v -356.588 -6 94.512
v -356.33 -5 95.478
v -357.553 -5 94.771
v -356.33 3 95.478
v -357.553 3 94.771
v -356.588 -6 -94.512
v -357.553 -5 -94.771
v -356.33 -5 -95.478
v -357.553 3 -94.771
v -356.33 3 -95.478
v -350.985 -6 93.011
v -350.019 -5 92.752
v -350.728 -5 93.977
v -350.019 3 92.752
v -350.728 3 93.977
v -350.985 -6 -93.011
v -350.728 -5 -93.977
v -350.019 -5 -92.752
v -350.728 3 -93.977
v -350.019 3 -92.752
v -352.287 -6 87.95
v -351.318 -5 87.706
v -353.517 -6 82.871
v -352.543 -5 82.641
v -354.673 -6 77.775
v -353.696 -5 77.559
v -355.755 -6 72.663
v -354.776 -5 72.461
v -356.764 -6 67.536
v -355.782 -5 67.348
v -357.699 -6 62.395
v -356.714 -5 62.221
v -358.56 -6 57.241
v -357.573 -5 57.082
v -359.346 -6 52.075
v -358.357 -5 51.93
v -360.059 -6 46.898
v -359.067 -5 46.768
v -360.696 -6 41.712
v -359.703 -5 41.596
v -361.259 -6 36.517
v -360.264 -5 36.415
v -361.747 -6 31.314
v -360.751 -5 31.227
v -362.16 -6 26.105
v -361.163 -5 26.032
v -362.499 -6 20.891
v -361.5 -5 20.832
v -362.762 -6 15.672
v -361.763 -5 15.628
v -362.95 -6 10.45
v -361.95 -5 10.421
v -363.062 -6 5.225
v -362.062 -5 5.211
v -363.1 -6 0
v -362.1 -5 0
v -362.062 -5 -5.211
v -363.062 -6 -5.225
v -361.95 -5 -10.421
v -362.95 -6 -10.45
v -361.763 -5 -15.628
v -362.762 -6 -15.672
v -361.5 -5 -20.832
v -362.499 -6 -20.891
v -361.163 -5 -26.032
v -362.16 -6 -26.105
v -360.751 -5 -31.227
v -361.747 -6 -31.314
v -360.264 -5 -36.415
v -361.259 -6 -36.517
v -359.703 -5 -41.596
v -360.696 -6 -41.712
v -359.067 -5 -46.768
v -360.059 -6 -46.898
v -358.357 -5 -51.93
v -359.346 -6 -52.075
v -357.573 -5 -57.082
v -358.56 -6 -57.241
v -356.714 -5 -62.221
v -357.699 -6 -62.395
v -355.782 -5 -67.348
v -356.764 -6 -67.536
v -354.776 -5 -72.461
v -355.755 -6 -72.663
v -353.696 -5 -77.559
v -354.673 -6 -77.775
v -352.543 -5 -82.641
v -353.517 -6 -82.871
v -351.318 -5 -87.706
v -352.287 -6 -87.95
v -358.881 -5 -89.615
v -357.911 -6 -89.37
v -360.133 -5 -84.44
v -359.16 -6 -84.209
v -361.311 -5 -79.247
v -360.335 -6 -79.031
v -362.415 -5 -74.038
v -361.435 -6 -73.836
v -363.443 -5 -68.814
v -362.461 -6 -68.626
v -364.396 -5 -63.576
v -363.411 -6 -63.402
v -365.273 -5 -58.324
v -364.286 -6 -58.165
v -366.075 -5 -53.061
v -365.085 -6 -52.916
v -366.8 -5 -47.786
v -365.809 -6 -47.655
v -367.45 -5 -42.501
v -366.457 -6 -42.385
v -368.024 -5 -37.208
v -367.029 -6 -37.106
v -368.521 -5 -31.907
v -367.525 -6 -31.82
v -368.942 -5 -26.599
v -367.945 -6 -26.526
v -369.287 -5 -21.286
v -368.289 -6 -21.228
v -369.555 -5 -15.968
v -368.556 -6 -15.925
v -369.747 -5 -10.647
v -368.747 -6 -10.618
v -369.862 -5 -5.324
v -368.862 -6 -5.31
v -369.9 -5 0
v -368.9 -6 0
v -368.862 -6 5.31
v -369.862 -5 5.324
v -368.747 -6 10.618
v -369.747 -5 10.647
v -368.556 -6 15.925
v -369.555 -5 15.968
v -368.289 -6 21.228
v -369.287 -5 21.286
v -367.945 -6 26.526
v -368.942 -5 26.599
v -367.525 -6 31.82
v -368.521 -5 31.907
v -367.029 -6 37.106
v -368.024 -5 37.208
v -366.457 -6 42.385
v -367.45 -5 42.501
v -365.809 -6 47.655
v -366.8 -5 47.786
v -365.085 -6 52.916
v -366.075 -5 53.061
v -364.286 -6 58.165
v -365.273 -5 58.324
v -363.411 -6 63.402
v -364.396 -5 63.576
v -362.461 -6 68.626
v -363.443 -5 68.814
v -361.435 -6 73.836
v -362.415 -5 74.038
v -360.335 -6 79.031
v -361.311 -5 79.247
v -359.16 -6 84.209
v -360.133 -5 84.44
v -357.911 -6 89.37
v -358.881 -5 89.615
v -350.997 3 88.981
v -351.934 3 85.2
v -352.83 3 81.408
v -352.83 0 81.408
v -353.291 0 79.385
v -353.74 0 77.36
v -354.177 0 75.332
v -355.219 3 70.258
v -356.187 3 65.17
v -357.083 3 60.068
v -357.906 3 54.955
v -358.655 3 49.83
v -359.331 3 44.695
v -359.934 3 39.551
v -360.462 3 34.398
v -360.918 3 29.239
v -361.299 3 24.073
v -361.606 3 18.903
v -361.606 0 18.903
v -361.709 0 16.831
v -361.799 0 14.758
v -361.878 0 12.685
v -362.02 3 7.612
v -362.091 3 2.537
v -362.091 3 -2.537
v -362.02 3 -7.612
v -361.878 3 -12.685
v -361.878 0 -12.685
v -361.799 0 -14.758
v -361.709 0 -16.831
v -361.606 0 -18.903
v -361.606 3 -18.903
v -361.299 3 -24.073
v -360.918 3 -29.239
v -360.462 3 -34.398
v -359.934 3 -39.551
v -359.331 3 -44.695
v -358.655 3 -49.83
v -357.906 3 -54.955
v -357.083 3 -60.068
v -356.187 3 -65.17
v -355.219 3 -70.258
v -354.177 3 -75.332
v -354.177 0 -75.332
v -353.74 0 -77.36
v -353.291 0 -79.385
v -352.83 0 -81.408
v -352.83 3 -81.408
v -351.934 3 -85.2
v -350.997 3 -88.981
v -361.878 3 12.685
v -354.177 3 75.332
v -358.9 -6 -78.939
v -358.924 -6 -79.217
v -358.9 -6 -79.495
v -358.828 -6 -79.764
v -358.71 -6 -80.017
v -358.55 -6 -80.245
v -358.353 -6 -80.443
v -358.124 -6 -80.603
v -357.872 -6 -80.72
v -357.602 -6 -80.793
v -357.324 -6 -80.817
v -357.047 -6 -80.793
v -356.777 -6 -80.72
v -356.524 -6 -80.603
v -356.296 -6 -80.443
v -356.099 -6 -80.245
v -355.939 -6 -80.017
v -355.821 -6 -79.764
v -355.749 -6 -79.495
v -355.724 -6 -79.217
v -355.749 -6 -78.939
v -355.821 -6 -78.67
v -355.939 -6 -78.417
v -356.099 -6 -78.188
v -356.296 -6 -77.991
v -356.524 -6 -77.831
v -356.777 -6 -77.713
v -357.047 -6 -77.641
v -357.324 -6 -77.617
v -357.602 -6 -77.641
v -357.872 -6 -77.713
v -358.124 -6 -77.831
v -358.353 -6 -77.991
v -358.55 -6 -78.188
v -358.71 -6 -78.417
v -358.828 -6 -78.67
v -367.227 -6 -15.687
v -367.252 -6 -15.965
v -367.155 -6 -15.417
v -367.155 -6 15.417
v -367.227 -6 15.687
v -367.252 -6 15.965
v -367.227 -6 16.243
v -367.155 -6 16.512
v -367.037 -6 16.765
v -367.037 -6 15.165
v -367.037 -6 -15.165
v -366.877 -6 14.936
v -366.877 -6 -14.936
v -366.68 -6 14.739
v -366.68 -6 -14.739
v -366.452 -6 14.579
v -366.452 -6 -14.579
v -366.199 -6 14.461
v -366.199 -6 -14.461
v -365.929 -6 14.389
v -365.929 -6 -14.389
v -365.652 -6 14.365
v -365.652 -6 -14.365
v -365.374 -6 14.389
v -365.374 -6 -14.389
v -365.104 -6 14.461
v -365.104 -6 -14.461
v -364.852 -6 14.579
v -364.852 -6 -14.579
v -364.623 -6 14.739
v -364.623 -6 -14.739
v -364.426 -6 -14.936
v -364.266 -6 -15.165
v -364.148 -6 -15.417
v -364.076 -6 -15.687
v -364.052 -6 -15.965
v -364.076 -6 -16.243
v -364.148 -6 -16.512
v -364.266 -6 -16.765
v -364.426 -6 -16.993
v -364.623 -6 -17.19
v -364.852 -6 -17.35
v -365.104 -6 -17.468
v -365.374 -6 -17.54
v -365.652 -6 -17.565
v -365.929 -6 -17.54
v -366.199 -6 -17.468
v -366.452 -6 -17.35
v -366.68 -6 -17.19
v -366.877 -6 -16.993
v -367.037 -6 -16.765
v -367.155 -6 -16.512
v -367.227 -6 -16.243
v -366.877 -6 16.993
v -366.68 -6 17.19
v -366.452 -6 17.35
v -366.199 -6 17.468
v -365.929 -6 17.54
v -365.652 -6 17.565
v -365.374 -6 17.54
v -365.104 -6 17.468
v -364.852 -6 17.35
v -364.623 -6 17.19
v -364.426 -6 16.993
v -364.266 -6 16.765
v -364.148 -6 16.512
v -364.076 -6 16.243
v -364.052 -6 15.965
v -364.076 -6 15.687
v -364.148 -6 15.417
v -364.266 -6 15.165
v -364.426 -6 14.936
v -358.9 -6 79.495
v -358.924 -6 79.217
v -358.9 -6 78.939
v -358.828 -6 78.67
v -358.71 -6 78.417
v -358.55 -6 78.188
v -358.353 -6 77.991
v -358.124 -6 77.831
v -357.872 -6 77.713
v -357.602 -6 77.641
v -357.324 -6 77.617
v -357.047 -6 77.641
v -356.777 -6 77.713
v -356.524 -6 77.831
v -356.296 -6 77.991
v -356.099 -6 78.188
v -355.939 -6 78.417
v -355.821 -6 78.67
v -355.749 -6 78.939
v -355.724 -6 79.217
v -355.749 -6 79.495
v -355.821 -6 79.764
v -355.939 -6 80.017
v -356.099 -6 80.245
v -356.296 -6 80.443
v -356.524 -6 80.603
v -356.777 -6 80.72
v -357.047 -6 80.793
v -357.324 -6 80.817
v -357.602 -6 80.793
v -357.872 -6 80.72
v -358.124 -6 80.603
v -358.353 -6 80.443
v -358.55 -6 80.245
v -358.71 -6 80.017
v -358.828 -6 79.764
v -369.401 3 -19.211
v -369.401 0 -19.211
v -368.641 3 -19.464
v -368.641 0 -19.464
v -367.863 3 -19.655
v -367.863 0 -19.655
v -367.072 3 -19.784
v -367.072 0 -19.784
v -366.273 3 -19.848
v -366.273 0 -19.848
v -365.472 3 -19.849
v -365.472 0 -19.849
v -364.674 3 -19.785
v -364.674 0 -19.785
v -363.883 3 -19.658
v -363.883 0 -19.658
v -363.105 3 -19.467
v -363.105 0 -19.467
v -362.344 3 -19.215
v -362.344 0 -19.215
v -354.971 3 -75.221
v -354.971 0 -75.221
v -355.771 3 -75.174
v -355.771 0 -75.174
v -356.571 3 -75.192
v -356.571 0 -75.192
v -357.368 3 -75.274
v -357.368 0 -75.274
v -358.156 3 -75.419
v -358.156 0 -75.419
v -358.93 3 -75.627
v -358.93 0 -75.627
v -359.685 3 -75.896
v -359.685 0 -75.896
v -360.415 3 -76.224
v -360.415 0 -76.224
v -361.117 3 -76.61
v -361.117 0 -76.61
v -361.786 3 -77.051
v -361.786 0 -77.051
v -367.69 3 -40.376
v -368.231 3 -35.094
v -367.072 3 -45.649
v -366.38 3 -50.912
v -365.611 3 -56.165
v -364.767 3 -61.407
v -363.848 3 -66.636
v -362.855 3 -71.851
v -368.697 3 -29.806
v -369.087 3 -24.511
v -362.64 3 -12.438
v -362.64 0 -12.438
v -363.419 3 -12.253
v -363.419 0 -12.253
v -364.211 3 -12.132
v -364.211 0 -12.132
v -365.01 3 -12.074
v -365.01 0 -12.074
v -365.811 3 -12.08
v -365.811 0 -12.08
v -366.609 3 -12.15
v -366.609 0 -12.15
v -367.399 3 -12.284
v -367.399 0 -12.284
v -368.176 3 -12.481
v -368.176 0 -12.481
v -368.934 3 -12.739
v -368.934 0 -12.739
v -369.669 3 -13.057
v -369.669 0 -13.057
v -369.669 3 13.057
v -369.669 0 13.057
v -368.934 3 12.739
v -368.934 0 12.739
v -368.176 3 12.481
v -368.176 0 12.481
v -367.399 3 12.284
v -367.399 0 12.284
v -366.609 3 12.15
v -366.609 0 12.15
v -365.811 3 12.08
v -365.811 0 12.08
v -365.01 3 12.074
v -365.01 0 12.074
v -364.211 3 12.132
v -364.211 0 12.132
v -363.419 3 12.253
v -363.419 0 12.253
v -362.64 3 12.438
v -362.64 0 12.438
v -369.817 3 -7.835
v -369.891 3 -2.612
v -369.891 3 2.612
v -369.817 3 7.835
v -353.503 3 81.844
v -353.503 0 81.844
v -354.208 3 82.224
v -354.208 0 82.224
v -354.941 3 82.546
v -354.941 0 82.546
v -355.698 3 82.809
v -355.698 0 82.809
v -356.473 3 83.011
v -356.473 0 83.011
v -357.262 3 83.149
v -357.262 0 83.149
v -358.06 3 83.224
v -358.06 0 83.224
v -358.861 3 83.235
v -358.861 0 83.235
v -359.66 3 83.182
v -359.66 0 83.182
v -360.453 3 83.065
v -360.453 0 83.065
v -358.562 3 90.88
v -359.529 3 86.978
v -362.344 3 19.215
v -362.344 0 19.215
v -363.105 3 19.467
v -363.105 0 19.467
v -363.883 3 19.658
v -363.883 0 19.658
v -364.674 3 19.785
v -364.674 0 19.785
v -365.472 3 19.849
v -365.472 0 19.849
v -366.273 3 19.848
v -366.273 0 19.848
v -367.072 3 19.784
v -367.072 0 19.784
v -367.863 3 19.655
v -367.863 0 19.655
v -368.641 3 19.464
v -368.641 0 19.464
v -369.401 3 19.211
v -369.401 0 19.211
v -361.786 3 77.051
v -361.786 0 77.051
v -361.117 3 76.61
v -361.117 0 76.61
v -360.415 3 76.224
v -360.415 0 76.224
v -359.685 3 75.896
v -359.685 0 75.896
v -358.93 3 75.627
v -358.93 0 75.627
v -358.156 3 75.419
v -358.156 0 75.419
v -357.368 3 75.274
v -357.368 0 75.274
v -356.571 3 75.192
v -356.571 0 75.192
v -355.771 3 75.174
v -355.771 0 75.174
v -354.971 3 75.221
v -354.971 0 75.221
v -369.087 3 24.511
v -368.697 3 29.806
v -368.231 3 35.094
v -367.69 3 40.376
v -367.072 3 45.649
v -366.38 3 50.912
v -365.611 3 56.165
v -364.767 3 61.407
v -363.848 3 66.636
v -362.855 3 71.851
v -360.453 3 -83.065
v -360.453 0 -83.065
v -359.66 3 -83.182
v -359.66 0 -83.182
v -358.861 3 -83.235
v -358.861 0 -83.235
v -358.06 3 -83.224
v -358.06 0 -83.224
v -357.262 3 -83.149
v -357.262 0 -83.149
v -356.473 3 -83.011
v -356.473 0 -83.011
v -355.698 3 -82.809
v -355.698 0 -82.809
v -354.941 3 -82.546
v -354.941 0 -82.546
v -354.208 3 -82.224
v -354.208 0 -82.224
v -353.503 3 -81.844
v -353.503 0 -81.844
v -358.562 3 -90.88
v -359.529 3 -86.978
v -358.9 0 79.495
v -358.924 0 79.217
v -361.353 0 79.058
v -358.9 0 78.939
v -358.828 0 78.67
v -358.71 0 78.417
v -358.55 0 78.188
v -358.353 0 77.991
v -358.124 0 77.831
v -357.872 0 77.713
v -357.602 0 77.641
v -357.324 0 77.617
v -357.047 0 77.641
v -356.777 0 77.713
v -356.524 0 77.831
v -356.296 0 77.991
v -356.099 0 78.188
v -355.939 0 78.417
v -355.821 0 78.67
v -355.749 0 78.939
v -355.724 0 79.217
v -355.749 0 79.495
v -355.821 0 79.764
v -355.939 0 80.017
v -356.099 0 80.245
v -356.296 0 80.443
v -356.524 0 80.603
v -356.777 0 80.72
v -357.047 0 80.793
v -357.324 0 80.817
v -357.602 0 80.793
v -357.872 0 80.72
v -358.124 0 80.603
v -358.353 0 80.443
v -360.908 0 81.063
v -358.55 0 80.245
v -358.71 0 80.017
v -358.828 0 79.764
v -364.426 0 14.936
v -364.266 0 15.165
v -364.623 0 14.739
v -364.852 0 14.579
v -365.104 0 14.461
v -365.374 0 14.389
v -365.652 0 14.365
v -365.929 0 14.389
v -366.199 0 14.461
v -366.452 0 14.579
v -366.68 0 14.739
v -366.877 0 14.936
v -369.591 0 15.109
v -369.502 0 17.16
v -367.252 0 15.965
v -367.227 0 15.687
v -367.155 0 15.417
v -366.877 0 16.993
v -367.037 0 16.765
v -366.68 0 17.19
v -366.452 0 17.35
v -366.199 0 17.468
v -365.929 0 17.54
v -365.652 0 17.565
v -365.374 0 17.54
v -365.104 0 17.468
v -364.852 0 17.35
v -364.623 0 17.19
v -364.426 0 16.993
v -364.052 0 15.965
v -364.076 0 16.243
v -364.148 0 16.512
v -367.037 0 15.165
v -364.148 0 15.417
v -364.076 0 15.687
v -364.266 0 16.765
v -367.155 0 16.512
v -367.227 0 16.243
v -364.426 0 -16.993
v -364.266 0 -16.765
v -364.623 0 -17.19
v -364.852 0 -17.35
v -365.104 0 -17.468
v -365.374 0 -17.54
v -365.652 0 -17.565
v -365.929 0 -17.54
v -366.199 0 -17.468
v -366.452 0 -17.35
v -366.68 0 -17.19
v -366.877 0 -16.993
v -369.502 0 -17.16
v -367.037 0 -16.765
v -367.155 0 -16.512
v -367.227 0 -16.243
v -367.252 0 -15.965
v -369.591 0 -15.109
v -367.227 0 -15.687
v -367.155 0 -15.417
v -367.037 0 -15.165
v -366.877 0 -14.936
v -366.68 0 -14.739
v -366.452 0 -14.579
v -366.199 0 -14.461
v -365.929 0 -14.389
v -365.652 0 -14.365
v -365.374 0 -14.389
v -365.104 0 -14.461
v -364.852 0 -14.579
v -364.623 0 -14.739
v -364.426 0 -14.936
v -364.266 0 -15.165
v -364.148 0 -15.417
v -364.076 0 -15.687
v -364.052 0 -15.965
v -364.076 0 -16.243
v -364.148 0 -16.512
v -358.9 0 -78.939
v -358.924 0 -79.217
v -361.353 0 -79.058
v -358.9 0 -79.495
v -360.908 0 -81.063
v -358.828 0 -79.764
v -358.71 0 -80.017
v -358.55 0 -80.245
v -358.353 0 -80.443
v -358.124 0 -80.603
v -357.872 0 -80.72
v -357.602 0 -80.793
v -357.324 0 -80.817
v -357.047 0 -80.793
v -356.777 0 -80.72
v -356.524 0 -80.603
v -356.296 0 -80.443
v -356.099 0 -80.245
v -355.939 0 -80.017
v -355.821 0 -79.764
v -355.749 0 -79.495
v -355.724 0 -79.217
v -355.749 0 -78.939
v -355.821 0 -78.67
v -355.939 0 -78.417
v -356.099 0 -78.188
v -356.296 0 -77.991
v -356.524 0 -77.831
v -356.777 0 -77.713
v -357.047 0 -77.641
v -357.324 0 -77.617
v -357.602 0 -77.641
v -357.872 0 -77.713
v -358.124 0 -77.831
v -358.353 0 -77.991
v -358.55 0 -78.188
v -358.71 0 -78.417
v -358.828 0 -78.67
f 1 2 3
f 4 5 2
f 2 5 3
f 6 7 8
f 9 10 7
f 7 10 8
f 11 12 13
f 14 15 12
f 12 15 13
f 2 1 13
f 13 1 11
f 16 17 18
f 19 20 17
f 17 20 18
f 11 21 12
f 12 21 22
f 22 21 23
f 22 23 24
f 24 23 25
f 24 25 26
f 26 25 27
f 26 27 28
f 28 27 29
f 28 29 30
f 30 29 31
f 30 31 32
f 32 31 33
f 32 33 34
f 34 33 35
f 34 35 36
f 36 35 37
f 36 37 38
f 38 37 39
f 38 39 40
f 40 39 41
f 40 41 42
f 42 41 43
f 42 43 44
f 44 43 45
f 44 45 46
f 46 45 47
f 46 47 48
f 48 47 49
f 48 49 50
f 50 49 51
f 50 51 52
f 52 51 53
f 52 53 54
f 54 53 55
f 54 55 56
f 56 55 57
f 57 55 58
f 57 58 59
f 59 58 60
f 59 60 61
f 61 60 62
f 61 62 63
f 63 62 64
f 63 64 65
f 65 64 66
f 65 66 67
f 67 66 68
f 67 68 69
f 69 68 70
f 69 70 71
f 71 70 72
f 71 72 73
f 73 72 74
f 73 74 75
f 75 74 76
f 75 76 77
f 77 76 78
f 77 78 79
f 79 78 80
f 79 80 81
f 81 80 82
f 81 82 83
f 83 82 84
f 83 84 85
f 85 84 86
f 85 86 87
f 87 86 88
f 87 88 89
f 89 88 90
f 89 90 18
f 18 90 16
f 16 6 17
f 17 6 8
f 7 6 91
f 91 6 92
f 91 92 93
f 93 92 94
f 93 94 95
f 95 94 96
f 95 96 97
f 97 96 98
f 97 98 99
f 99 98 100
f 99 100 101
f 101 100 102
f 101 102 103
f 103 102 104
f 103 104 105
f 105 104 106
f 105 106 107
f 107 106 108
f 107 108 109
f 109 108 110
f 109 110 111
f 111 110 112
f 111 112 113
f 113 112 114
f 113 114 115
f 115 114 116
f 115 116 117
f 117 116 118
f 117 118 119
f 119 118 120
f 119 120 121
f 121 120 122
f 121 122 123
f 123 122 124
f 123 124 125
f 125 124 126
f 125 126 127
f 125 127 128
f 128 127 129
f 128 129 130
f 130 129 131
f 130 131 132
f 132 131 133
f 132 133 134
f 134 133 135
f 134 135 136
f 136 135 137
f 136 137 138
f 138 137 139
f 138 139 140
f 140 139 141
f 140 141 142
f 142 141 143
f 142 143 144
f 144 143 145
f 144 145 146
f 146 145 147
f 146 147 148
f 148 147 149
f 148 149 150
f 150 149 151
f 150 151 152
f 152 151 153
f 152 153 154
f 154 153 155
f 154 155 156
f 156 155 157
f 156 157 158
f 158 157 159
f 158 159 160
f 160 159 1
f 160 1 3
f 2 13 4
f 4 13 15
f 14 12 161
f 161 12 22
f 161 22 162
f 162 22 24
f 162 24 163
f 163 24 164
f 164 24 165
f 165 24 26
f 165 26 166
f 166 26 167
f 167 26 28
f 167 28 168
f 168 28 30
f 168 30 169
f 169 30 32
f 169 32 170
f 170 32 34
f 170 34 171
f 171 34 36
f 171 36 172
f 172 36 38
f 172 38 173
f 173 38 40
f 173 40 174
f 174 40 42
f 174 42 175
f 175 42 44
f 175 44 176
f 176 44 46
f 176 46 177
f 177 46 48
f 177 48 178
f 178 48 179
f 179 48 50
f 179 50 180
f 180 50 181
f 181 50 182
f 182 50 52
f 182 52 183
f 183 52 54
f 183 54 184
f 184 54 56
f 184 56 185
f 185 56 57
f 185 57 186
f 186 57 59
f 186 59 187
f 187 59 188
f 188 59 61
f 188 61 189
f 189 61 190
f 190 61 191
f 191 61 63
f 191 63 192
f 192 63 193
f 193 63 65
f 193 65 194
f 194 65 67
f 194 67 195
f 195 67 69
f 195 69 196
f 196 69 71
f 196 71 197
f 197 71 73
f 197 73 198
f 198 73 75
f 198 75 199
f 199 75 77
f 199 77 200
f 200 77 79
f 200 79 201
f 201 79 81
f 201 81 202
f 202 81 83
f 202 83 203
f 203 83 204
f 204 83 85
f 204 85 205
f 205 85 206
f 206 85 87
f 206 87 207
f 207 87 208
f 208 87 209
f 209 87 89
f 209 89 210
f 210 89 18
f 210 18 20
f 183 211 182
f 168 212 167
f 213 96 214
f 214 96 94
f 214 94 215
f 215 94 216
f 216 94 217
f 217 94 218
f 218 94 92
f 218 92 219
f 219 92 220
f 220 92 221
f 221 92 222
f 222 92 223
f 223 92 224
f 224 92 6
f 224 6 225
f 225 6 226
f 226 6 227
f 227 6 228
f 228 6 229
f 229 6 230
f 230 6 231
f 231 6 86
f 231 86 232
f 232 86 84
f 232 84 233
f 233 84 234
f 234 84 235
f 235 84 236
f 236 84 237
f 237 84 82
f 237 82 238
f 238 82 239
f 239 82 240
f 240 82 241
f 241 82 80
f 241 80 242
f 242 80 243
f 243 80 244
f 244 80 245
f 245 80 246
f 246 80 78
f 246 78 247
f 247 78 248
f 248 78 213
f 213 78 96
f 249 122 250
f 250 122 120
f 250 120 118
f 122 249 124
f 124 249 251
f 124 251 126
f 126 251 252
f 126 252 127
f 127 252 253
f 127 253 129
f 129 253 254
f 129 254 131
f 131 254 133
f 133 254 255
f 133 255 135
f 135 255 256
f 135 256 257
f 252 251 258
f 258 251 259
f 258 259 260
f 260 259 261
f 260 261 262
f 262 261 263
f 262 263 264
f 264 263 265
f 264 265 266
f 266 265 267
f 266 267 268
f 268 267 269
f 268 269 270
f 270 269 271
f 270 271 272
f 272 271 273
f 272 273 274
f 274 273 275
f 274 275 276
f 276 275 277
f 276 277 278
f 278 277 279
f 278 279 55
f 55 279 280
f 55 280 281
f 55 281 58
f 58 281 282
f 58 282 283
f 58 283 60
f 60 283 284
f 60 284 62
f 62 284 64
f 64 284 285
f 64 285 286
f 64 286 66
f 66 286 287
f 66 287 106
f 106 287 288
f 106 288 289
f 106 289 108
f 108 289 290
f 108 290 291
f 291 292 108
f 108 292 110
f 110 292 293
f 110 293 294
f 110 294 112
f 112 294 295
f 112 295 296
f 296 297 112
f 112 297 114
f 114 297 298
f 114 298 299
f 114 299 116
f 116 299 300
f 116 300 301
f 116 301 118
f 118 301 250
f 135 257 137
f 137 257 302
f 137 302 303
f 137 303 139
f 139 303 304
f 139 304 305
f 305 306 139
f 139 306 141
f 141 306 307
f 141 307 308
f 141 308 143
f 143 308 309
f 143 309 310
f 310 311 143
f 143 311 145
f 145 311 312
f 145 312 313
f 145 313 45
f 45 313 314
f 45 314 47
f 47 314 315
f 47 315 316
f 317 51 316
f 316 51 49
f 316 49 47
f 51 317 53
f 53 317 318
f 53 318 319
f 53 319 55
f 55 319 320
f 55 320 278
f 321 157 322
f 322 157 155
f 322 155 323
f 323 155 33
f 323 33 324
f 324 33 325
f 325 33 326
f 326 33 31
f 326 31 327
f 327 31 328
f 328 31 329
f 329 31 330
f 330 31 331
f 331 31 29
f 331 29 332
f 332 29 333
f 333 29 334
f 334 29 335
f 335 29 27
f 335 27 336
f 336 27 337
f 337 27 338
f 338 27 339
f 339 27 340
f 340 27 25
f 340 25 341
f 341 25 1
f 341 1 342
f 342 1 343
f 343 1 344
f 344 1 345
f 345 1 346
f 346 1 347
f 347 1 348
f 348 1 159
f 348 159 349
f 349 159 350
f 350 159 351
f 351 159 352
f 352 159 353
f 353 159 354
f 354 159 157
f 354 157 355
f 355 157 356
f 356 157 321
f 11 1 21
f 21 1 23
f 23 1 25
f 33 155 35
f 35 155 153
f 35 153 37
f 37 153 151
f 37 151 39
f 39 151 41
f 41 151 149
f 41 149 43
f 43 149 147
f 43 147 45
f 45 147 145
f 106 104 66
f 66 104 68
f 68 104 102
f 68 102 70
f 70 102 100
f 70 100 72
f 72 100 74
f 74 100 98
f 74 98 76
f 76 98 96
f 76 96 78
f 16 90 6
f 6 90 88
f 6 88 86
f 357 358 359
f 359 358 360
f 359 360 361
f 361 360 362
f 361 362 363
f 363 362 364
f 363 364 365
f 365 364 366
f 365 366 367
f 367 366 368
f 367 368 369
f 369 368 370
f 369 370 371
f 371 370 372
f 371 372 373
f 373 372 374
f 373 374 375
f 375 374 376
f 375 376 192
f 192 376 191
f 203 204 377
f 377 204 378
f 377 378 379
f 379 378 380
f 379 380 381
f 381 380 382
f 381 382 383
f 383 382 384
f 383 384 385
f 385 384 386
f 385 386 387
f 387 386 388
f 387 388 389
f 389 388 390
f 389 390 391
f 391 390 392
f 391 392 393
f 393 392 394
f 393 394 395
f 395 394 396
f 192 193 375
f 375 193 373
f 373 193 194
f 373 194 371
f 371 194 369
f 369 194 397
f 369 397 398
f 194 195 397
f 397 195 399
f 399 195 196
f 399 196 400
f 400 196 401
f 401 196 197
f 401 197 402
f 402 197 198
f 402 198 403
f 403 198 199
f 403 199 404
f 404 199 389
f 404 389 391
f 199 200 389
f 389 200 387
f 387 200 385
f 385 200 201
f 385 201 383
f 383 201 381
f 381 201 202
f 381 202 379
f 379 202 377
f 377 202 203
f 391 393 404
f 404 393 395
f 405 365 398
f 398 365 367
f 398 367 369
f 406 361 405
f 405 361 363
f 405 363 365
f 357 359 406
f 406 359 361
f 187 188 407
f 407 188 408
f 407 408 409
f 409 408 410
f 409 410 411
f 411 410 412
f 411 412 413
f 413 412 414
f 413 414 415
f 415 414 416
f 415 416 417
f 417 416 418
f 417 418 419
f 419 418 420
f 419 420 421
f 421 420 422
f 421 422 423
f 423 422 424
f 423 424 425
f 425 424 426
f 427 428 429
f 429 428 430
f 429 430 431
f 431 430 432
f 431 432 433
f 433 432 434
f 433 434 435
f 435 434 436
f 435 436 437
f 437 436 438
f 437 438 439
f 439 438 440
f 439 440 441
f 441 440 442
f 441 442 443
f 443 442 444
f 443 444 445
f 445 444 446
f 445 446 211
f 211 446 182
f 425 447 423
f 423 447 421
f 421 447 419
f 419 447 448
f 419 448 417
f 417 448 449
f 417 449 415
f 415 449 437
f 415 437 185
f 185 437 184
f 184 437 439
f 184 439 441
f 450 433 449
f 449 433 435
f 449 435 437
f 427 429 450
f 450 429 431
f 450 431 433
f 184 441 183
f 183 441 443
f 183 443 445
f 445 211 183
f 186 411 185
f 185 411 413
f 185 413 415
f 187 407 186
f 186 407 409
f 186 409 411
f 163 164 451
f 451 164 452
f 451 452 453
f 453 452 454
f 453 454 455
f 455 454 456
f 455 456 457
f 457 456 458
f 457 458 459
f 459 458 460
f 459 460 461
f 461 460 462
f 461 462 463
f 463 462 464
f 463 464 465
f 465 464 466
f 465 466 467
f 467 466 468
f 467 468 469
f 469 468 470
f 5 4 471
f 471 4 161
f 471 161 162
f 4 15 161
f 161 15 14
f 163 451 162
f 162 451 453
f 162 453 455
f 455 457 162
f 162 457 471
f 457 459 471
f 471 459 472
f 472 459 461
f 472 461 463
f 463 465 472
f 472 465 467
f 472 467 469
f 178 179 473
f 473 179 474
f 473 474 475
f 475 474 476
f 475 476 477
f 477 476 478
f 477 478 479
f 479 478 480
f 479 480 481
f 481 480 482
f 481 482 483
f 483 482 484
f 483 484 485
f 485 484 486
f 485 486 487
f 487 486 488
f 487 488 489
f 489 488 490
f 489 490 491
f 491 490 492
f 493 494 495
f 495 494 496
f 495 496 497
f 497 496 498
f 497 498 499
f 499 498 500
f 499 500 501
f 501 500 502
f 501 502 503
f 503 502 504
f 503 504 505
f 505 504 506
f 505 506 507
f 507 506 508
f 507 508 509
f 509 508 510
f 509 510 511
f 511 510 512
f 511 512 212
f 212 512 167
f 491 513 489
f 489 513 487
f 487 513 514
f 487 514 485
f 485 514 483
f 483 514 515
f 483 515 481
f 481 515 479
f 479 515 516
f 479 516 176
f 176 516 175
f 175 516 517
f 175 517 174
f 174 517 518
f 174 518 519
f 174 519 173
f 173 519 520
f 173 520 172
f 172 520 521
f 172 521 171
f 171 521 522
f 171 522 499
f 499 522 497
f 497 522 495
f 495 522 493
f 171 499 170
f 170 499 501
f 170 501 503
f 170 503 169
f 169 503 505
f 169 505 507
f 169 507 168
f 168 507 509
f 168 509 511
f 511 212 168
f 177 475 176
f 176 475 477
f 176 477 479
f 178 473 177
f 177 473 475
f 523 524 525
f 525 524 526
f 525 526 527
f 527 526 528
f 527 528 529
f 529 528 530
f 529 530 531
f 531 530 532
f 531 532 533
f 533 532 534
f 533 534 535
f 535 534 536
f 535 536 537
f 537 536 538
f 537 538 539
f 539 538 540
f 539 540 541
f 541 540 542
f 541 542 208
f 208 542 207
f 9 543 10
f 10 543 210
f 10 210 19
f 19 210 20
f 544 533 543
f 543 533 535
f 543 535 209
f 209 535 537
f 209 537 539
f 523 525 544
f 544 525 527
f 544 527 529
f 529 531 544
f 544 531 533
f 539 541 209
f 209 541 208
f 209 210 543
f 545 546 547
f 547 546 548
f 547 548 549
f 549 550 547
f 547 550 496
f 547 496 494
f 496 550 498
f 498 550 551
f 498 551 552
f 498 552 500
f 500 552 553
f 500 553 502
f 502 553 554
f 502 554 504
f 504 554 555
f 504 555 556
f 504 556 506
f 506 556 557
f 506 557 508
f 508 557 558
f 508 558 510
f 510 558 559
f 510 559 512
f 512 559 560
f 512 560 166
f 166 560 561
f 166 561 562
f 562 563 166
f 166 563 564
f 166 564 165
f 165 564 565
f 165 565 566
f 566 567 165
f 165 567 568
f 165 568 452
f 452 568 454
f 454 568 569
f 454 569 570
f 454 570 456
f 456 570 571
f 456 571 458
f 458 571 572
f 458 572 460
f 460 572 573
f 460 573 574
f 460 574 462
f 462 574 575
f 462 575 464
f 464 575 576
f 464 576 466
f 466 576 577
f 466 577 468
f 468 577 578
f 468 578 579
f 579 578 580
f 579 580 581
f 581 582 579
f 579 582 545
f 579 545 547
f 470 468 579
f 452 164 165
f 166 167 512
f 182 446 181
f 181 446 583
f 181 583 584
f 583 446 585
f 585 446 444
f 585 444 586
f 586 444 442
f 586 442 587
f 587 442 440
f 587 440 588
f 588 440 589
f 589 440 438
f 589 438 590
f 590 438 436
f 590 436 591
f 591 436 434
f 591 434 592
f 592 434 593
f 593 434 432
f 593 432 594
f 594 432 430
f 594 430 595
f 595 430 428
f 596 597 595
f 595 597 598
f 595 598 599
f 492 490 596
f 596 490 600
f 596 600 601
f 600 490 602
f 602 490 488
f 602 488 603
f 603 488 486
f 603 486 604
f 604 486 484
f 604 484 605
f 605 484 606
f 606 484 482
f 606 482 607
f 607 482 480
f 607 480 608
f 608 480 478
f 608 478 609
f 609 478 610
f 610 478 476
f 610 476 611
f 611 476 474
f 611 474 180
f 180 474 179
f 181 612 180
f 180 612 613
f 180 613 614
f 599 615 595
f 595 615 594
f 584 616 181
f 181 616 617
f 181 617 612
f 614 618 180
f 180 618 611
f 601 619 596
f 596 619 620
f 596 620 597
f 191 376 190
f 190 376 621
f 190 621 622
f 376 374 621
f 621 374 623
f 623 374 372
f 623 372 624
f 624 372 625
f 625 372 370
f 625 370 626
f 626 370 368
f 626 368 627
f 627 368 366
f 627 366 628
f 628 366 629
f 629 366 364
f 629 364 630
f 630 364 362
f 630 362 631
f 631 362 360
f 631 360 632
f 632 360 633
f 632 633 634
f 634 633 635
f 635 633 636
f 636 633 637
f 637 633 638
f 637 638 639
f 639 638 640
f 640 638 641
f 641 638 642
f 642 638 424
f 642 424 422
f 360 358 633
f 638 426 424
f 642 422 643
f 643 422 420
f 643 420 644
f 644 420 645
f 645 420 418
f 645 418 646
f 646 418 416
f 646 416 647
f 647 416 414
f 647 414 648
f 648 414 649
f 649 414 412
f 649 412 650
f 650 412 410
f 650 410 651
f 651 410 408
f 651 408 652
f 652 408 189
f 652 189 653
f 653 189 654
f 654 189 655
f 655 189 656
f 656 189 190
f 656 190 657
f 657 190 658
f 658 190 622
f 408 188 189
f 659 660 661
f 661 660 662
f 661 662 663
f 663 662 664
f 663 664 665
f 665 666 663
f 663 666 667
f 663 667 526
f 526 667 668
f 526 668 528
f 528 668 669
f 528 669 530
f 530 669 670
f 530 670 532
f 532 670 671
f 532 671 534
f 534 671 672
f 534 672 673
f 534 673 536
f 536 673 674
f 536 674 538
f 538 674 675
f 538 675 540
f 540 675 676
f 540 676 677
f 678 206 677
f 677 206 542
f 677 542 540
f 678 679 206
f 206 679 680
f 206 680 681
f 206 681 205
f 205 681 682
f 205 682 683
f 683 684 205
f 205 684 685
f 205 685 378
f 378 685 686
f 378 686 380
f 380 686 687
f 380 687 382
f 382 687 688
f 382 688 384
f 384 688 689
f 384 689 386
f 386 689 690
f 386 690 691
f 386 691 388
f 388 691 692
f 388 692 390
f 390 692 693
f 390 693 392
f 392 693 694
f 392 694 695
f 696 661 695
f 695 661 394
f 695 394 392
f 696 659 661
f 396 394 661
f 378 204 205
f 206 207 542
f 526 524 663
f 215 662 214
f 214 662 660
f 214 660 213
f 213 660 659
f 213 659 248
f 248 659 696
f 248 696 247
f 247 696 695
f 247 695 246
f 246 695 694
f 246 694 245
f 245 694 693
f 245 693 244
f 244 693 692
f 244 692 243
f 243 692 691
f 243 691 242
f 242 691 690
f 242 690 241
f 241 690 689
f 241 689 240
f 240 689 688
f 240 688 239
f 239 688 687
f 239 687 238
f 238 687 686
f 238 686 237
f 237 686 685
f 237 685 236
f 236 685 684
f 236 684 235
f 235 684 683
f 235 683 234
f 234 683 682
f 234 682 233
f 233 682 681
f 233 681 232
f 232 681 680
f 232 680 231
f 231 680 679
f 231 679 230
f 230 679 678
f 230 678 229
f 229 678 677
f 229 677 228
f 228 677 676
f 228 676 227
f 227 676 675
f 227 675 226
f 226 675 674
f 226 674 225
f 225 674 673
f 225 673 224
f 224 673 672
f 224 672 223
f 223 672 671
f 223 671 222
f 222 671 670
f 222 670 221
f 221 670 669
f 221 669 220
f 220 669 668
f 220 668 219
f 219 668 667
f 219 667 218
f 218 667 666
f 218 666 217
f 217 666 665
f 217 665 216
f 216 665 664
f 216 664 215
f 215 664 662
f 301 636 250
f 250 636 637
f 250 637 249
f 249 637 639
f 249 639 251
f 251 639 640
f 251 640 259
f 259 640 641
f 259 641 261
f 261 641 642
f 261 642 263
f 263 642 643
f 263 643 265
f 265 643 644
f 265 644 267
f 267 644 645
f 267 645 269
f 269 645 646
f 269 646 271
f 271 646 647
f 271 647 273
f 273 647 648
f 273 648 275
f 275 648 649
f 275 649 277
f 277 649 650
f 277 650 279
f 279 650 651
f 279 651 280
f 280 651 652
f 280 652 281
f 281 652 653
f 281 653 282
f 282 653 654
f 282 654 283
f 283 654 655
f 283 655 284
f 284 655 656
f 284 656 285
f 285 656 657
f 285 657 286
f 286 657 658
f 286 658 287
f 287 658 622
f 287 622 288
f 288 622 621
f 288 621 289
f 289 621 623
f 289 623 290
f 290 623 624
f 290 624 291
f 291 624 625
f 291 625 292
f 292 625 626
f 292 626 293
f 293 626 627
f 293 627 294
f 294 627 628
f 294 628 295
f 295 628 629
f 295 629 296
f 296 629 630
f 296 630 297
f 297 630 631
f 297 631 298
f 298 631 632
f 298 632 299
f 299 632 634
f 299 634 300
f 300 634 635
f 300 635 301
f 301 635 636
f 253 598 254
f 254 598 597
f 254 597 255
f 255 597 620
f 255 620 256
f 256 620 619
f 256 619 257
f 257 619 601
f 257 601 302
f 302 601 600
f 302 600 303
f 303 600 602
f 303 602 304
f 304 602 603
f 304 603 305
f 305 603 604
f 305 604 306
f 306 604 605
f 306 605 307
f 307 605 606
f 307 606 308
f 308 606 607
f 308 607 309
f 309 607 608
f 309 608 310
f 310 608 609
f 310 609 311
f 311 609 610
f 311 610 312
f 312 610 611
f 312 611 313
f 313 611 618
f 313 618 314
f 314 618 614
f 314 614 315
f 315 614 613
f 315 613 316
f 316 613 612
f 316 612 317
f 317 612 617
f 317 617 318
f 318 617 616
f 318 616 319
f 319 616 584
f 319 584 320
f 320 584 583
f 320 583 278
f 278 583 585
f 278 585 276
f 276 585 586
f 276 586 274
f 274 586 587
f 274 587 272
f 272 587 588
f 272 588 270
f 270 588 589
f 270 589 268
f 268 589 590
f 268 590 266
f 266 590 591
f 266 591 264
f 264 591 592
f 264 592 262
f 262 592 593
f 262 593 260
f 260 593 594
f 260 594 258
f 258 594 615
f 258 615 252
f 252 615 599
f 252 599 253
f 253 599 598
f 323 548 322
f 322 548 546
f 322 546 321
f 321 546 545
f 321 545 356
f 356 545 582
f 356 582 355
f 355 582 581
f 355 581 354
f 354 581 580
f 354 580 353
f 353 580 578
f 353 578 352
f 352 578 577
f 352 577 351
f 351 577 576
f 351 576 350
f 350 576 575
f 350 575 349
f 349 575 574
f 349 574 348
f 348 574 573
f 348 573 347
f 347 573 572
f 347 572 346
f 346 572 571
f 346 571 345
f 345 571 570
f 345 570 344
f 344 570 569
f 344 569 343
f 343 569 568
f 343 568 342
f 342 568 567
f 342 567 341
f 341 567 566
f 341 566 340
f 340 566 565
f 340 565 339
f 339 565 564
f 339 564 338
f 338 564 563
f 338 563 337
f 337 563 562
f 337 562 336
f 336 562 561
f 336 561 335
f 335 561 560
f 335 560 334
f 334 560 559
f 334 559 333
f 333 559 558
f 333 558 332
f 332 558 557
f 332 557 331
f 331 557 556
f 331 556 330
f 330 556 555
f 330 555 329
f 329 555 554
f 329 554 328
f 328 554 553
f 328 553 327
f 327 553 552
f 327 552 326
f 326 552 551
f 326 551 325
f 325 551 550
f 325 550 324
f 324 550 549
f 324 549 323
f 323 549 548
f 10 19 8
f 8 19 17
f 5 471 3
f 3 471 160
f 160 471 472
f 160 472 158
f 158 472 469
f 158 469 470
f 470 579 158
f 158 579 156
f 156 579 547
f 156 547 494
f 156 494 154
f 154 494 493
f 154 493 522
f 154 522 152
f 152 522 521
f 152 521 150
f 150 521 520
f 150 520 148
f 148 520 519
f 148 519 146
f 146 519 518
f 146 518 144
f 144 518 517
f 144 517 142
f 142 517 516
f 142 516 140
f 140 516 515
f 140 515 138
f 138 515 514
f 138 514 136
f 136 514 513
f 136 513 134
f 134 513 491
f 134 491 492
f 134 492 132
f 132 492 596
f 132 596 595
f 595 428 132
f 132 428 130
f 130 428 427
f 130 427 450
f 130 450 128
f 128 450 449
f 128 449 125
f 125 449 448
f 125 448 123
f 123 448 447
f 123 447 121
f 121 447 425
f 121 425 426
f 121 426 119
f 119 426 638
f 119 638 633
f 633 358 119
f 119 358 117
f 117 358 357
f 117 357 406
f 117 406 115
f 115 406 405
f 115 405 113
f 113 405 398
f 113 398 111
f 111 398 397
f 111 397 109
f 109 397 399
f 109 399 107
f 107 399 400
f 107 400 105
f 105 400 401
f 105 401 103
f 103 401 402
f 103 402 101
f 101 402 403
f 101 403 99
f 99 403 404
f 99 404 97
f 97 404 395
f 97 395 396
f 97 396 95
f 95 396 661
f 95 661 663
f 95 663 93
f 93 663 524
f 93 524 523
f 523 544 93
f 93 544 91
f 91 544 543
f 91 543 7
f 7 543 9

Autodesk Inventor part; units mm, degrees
ref_plane "YZ Plane" through (0, 0, 0) normal (1, 0, 0) x (0, 1, 0)
ref_plane "XZ Plane" through (0, 0, 0) normal (0, 1, 0) x (-1, 0, 0)
ref_plane "XY Plane" through (0, 0, 0) normal (0, 0, 1) x (1, 0, 0)
sketch "Skizze1" plane through (0, 0, 0) normal (0, 1, 0) x (-1, 0, 0)
  arc A0 (349.7617, -93.7184) -> (349.7617, 93.7184) centre (0, 0) ccw
  arc A1 (357.296, -95.7372) -> (357.296, 95.7372) centre (0, 0) ccw
  line L0 (357.296, 95.7372) -> (0, 0) construction
  line L1 (0, 0) -> (357.296, -95.7372) construction
  line L2 (444.782, 0) -> (-74.1303, 0) construction
  line L3 (357.296, 95.7372) -> (349.7617, 93.7184)
  line L4 (357.296, -95.7372) -> (349.7617, -93.7184)
  line L5 (361.1319, 80.061) -> (0, 0) construction
  line L6 (369.5479, 16.1348) -> (0, 0) construction
  line L7 (369.5479, -16.1348) -> (0, 0) construction
  line L8 (361.1319, -80.061) -> (0, 0) construction
  arc A2 (353.5289, -94.7278) -> (353.5289, 94.7278) centre (0, 0) ccw construction
  circle A3 centre (357.3243, 79.2169) radius 1.6
  circle A4 centre (365.6516, 15.9647) radius 1.6
  circle A5 centre (365.6516, -15.9647) radius 1.6
  circle A6 centre (357.3243, -79.2169) radius 1.6
  circle A7 centre (357.3243, 79.2169) radius 3
  circle A8 centre (365.6516, 15.9647) radius 3
  circle A9 centre (365.6516, -15.9647) radius 3
  circle A10 centre (357.3243, -79.2169) radius 3
  arc A11 (360.4527, 83.0652) -> (352.8301, 81.4083) centre (358.5974, 73.2389) ccw
  arc A12 (354.1773, 75.3315) -> (361.786, 77.0512) centre (355.9517, 85.1728) ccw
  arc A13 (369.4008, 19.2113) -> (361.6062, 18.9032) centre (365.8673, 9.8564) ccw
  arc A14 (361.8777, 12.6848) -> (369.6695, 13.0572) centre (365.3341, 22.0685) ccw
  arc A15 (369.6695, -13.0572) -> (361.8777, -12.6848) centre (365.3341, -22.0685) ccw
  arc A16 (361.786, -77.0512) -> (354.1773, -75.3315) centre (355.9517, -85.1728) ccw
  arc A17 (352.8301, -81.4083) -> (360.4527, -83.0652) centre (358.5974, -73.2389) ccw
  arc A18 (361.6062, -18.9032) -> (369.4008, -19.2113) centre (365.8673, -9.8564) ccw
  circle A19 centre (357.3243, -79.2169) radius 5 construction
  circle A20 centre (365.6516, -15.9647) radius 5 construction
  circle A21 centre (365.6516, 15.9647) radius 5 construction
  circle A22 centre (357.3243, 79.2169) radius 5 construction
  dimension "d1" = 7.8
  dimension "d18" = 366
  dimension "d19" = 10
  dimension "d2" = 30
  dimension "d4" = 10
  dimension "d5" = 5
  dimension "d6" = 10
  dimension "d7" = 3.2
  dimension "d8" = 6
  dimension "d17" = 10
extrude "Extrusion1" add sketch "Skizze1" against normal blind 6 contours A0 A17 A1 L4 | A0 A16 A1 A17 | A0 A18 A1 A16 | A0 A15 A1 A18 | A0 A14 A1 A15 | A0 A13 A1 A14 | A0 A12 A1 A13 | A0 A11 A1 A12 | A0 L3 A1 A11 | A7 | A8 | A9 | A10
extrude "Extrusion2" add sketch "Skizze1" along normal blind 3 contours A0 A17 A1 L4 | A0 A18 A1 A16 | A0 A14 A1 A15 | A0 A12 A1 A13 | A0 L3 A1 A11
chamfer "Fase1" distance 1 angle 45 8 edges at (-362.1, -6, 0) (-349.7617, -1.5, 93.7184) (-357.296, -1.5, 95.7372) (-349.7617, -1.5, -93.7184) (-357.296, -1.5, -95.7372) (-369.9, -6, 0) (-353.5289, -6, -94.7278) (-353.5289, -6, 94.7278)
properties part number "LED-Ring_Connector_v2"
